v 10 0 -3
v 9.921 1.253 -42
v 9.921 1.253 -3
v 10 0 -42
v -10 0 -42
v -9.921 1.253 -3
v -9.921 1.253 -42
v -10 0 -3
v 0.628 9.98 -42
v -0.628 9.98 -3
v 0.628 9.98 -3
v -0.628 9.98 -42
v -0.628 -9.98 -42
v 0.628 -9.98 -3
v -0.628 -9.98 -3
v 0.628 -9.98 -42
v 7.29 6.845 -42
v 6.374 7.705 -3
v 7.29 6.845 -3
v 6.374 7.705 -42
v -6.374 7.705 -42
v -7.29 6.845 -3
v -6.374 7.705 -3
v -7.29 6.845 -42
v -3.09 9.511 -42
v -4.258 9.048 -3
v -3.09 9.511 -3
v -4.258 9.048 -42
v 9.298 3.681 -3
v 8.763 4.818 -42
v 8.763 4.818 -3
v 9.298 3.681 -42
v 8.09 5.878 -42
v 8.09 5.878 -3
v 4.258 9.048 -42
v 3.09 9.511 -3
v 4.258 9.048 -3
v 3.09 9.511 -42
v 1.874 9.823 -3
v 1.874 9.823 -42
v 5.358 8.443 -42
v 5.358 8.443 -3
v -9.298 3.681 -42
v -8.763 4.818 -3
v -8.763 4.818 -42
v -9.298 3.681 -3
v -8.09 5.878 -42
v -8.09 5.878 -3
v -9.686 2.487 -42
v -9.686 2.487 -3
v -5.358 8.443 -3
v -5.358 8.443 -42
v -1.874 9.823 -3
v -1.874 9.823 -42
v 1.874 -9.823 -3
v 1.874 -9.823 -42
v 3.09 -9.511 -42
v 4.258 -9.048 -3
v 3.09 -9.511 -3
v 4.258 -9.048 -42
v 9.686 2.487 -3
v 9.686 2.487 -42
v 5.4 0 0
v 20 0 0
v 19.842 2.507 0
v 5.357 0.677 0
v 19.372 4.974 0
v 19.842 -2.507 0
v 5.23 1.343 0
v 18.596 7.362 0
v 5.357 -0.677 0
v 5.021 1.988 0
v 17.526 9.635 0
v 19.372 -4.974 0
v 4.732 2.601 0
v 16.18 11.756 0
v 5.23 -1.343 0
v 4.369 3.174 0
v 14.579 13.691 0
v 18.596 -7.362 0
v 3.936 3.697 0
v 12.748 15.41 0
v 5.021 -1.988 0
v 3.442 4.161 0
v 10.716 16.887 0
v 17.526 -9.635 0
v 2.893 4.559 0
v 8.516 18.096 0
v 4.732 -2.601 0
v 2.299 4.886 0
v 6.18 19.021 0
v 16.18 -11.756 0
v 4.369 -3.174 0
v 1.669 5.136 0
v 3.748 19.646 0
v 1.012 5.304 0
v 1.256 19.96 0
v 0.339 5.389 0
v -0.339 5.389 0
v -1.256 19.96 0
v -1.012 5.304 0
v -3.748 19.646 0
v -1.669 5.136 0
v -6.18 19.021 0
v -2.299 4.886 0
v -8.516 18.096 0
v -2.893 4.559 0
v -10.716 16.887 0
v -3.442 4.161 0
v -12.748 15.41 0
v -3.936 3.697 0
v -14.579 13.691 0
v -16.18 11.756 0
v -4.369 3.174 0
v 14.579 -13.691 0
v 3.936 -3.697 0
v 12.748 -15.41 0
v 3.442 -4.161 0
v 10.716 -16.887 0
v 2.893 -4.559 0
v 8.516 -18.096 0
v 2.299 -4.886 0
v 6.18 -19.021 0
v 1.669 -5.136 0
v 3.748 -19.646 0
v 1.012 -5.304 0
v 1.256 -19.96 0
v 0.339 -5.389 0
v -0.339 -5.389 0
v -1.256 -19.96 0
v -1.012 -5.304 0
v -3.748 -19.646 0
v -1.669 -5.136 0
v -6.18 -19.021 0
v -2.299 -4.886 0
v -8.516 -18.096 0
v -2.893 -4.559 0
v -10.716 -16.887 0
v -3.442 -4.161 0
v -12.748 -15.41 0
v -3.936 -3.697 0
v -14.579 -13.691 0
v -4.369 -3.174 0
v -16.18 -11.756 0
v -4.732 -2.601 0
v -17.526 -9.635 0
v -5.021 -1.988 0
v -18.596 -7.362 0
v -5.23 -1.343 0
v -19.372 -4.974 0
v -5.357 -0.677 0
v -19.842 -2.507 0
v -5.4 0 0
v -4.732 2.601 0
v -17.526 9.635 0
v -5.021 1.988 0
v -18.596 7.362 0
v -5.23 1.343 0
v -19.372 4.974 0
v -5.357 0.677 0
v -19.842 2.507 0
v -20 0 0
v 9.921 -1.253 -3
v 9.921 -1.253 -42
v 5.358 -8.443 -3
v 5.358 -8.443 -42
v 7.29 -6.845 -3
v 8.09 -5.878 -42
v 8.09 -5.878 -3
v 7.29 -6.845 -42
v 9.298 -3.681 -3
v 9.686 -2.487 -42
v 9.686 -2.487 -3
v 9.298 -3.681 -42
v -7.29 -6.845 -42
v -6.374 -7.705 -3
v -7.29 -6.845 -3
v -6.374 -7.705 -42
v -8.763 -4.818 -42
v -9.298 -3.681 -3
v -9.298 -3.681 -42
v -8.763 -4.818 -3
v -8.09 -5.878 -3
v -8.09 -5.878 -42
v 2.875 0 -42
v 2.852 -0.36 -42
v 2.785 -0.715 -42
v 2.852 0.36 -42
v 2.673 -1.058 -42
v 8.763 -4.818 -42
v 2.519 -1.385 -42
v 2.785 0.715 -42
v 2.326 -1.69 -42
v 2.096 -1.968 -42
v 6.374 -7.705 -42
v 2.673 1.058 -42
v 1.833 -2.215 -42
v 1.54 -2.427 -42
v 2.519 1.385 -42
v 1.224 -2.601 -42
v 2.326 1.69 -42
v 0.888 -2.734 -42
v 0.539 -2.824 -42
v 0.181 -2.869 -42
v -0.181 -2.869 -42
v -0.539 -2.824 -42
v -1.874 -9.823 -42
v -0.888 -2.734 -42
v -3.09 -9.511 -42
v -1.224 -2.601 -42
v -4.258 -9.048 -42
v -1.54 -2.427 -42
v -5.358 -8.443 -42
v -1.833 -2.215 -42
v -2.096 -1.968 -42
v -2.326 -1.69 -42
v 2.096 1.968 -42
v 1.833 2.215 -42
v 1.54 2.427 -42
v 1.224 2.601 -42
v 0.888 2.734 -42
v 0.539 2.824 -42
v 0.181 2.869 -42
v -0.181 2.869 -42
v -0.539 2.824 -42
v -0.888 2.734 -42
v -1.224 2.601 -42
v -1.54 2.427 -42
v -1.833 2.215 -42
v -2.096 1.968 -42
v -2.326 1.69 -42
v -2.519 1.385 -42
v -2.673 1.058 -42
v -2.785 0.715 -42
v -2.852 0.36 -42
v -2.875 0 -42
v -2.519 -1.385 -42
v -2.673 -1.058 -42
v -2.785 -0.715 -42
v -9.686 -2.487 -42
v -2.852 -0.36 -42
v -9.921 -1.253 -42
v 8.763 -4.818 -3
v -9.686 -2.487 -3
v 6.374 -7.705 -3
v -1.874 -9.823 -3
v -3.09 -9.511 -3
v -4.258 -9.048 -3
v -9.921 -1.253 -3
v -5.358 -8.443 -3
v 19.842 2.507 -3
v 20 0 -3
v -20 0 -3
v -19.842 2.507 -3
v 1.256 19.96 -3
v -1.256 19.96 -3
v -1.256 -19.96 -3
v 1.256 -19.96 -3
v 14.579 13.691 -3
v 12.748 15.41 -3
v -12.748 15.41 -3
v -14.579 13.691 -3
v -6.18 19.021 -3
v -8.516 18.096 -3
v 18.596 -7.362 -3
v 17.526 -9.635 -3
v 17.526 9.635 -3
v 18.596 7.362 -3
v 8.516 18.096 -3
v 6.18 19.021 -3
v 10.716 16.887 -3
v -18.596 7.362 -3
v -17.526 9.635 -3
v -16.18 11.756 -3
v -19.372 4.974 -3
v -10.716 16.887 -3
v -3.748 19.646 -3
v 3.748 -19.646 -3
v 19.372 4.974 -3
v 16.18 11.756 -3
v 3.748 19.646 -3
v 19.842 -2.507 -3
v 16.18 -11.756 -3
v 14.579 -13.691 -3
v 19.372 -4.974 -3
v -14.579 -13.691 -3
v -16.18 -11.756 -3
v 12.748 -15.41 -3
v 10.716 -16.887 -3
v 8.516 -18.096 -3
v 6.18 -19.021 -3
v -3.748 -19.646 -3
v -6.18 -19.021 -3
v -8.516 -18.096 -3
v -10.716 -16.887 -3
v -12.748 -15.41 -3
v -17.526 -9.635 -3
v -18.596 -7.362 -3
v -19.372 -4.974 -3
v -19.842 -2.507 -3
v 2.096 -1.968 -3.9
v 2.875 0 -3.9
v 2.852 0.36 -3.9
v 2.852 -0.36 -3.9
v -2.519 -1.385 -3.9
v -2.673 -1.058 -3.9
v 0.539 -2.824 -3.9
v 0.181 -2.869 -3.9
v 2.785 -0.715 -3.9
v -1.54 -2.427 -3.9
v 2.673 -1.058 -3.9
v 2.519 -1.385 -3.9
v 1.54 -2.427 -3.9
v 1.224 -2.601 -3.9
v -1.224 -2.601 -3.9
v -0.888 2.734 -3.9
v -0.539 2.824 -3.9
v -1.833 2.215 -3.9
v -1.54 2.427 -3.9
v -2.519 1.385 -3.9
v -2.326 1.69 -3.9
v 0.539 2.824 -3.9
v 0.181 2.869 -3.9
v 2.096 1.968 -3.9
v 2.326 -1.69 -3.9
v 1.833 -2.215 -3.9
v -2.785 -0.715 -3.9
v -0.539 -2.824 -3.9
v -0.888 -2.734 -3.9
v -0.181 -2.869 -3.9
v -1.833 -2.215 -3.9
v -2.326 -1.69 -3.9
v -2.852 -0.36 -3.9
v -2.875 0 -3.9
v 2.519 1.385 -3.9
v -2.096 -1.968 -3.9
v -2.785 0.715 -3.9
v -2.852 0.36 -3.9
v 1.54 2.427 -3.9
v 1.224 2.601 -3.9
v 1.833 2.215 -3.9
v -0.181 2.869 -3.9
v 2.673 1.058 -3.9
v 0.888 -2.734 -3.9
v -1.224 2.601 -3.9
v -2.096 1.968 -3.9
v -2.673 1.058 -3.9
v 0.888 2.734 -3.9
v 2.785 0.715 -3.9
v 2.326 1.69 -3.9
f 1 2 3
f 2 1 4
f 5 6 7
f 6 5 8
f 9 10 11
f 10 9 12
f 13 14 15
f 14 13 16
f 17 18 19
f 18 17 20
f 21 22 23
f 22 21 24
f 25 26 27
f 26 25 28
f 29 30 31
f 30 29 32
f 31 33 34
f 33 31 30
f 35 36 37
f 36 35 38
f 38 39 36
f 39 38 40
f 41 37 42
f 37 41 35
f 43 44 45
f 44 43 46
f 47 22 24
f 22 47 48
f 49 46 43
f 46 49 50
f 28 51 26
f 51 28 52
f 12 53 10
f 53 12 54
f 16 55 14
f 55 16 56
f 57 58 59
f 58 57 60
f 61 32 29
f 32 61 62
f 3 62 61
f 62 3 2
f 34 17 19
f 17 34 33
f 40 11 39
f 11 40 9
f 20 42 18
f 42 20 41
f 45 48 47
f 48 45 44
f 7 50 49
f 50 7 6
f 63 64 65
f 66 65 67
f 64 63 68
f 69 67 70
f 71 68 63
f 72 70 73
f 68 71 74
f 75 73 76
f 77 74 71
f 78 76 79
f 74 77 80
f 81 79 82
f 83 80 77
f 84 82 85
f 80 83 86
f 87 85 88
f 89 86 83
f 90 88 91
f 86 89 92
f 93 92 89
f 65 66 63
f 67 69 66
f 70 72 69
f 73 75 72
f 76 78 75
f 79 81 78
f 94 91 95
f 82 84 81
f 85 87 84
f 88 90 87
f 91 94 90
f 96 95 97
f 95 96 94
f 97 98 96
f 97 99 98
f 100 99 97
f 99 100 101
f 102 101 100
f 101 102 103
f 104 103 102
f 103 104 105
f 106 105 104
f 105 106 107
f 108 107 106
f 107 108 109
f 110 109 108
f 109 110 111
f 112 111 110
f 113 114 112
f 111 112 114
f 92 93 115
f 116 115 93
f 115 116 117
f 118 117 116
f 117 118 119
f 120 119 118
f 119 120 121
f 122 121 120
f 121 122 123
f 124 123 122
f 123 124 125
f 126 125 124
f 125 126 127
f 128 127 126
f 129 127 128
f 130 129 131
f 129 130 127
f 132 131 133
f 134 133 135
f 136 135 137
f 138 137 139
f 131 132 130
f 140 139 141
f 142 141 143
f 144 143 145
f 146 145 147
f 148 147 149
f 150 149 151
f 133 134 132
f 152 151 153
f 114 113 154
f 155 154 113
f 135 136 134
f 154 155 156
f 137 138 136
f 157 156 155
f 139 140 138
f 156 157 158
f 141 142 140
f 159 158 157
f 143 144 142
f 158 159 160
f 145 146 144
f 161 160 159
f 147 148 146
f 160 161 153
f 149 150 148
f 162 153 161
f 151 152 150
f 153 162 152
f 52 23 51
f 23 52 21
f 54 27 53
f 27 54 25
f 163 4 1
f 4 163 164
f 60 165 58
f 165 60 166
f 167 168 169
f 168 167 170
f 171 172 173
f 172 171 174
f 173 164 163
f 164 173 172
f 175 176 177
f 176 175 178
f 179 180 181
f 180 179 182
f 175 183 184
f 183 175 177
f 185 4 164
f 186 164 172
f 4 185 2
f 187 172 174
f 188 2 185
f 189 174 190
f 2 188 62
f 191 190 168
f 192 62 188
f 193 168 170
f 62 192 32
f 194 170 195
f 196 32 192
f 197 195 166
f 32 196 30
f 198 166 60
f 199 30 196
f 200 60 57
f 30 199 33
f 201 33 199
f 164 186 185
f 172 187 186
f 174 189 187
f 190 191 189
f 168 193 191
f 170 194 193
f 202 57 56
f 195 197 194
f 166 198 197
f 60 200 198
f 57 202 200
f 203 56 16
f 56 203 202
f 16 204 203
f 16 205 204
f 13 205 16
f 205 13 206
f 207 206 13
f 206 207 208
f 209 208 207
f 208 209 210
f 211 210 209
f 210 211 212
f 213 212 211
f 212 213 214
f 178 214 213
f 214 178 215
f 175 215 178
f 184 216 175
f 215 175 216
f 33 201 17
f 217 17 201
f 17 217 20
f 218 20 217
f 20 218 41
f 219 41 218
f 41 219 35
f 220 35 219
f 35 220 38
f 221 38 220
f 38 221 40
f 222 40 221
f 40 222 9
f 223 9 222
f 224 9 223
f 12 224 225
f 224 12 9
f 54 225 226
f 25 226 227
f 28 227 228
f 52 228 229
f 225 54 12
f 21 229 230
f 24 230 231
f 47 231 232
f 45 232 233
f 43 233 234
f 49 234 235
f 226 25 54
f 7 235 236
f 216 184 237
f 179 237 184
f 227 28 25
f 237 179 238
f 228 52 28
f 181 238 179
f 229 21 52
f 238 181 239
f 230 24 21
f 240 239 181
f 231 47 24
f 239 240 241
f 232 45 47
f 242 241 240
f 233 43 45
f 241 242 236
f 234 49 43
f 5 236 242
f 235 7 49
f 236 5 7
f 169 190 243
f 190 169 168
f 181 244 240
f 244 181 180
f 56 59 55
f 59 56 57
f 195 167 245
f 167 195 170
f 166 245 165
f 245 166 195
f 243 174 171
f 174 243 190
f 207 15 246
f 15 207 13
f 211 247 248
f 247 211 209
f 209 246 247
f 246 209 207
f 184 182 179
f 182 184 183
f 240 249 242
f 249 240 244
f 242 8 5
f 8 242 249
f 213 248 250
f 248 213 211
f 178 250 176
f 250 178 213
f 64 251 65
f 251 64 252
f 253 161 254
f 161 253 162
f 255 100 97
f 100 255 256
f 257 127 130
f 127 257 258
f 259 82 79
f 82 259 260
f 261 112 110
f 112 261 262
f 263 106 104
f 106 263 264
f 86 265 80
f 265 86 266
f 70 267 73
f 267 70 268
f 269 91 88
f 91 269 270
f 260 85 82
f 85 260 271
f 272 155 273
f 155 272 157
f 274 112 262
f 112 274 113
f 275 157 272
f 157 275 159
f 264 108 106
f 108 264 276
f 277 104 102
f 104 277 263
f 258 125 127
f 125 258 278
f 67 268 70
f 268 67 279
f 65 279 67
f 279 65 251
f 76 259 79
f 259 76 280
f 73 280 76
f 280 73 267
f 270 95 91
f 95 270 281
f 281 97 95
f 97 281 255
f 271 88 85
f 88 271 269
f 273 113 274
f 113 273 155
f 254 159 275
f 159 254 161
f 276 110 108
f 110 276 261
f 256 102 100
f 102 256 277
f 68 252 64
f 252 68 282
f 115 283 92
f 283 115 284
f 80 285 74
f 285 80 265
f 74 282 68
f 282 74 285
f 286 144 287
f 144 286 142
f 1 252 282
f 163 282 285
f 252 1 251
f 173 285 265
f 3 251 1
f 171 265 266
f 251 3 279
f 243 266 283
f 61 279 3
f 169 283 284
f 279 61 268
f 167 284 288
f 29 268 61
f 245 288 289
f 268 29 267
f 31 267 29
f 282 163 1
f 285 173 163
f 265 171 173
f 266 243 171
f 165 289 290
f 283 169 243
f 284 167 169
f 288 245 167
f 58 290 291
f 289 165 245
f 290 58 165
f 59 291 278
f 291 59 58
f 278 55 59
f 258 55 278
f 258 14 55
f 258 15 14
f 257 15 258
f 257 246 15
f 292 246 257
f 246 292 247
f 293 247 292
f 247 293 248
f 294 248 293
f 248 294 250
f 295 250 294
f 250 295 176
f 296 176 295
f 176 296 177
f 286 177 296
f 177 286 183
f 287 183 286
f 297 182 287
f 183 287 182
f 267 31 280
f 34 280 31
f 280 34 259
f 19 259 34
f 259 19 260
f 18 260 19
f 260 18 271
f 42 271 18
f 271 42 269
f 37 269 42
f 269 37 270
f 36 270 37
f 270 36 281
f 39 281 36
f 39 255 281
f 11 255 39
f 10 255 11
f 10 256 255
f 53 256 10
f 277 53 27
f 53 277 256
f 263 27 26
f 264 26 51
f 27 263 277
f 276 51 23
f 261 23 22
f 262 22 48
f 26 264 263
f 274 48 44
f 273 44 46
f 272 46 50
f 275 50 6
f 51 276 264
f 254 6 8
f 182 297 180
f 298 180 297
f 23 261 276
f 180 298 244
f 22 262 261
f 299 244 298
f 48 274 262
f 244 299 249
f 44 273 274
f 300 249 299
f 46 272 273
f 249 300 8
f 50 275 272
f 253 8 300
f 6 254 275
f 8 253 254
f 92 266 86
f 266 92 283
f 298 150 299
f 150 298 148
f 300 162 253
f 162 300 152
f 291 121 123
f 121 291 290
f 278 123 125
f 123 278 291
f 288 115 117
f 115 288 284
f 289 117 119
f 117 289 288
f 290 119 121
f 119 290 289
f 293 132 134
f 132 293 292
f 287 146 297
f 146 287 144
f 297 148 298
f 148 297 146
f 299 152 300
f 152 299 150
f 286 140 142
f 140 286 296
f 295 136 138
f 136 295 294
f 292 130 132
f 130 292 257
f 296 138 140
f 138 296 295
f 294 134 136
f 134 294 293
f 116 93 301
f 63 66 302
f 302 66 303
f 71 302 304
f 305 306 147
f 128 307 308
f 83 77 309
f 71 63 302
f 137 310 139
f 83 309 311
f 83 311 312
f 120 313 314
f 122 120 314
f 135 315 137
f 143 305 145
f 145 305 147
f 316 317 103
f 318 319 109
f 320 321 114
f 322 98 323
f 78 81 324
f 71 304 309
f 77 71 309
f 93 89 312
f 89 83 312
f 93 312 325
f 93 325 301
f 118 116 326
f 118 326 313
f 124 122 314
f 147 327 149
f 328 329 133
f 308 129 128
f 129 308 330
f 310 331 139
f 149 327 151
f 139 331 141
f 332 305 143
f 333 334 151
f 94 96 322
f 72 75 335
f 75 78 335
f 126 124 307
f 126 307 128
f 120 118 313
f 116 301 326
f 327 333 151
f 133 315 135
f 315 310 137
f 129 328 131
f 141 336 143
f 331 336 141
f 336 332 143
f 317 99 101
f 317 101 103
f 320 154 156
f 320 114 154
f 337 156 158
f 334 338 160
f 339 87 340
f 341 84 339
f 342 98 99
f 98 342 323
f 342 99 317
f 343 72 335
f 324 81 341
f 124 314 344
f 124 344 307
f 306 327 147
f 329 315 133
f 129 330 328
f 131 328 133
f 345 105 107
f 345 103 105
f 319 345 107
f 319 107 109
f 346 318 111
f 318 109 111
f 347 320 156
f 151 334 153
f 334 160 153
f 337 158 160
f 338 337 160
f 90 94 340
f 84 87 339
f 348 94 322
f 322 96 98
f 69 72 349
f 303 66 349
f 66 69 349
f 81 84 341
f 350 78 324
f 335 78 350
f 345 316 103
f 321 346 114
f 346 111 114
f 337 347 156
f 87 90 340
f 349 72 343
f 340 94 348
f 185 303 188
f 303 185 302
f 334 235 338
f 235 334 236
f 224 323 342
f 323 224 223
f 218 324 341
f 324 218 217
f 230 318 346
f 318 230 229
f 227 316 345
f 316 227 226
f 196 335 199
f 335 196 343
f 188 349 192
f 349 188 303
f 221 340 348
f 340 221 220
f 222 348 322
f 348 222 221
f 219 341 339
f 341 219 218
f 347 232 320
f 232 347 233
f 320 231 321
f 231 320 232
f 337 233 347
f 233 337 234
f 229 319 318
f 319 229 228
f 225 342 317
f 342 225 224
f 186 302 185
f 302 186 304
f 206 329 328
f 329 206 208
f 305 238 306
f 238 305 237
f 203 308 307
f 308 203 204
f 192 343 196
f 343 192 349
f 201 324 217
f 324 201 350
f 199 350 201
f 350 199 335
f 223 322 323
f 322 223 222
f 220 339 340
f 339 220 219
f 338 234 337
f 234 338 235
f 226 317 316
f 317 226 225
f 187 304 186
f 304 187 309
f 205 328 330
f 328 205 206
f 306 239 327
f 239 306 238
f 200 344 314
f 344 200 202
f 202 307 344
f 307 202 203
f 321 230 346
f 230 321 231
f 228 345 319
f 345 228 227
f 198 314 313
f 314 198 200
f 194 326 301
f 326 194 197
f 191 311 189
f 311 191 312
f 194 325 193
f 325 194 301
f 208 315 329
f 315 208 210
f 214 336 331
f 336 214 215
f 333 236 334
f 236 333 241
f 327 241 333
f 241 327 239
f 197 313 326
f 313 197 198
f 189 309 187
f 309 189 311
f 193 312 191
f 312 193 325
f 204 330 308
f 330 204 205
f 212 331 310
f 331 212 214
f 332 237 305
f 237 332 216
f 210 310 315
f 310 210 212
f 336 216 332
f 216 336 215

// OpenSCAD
$fn = 50;


difference() {
	union() {
		translate(v = [0, 0, -42.0000000000]) {
			cylinder(h = 42, r = 10.0000000000);
		}
		translate(v = [0, 0, -3.0000000000]) {
			cylinder(h = 3, r = 20.0000000000);
		}
	}
	union() {
		translate(v = [0, 0, 0]) {
			rotate(a = [0, 0, 0]) {
				difference() {
					union() {
						#translate(v = [0, 0, -42.0000000000]) {
							cylinder(h = 42, r = 2.6000000000);
						}
						#translate(v = [0, 0, -3.9000000000]) {
							cylinder(h = 3.9000000000, r = 10.0000000000, r1 = 2.8750000000, r2 = 5.4000000000);
						}
						#translate(v = [0, 0, -42.0000000000]) {
							cylinder(h = 42, r = 2.8750000000);
						}
						#translate(v = [0, 0, -42.0000000000]) {
							cylinder(h = 42, r = 2.6000000000);
						}
					}
					union();
				}
			}
		}
	}
}
